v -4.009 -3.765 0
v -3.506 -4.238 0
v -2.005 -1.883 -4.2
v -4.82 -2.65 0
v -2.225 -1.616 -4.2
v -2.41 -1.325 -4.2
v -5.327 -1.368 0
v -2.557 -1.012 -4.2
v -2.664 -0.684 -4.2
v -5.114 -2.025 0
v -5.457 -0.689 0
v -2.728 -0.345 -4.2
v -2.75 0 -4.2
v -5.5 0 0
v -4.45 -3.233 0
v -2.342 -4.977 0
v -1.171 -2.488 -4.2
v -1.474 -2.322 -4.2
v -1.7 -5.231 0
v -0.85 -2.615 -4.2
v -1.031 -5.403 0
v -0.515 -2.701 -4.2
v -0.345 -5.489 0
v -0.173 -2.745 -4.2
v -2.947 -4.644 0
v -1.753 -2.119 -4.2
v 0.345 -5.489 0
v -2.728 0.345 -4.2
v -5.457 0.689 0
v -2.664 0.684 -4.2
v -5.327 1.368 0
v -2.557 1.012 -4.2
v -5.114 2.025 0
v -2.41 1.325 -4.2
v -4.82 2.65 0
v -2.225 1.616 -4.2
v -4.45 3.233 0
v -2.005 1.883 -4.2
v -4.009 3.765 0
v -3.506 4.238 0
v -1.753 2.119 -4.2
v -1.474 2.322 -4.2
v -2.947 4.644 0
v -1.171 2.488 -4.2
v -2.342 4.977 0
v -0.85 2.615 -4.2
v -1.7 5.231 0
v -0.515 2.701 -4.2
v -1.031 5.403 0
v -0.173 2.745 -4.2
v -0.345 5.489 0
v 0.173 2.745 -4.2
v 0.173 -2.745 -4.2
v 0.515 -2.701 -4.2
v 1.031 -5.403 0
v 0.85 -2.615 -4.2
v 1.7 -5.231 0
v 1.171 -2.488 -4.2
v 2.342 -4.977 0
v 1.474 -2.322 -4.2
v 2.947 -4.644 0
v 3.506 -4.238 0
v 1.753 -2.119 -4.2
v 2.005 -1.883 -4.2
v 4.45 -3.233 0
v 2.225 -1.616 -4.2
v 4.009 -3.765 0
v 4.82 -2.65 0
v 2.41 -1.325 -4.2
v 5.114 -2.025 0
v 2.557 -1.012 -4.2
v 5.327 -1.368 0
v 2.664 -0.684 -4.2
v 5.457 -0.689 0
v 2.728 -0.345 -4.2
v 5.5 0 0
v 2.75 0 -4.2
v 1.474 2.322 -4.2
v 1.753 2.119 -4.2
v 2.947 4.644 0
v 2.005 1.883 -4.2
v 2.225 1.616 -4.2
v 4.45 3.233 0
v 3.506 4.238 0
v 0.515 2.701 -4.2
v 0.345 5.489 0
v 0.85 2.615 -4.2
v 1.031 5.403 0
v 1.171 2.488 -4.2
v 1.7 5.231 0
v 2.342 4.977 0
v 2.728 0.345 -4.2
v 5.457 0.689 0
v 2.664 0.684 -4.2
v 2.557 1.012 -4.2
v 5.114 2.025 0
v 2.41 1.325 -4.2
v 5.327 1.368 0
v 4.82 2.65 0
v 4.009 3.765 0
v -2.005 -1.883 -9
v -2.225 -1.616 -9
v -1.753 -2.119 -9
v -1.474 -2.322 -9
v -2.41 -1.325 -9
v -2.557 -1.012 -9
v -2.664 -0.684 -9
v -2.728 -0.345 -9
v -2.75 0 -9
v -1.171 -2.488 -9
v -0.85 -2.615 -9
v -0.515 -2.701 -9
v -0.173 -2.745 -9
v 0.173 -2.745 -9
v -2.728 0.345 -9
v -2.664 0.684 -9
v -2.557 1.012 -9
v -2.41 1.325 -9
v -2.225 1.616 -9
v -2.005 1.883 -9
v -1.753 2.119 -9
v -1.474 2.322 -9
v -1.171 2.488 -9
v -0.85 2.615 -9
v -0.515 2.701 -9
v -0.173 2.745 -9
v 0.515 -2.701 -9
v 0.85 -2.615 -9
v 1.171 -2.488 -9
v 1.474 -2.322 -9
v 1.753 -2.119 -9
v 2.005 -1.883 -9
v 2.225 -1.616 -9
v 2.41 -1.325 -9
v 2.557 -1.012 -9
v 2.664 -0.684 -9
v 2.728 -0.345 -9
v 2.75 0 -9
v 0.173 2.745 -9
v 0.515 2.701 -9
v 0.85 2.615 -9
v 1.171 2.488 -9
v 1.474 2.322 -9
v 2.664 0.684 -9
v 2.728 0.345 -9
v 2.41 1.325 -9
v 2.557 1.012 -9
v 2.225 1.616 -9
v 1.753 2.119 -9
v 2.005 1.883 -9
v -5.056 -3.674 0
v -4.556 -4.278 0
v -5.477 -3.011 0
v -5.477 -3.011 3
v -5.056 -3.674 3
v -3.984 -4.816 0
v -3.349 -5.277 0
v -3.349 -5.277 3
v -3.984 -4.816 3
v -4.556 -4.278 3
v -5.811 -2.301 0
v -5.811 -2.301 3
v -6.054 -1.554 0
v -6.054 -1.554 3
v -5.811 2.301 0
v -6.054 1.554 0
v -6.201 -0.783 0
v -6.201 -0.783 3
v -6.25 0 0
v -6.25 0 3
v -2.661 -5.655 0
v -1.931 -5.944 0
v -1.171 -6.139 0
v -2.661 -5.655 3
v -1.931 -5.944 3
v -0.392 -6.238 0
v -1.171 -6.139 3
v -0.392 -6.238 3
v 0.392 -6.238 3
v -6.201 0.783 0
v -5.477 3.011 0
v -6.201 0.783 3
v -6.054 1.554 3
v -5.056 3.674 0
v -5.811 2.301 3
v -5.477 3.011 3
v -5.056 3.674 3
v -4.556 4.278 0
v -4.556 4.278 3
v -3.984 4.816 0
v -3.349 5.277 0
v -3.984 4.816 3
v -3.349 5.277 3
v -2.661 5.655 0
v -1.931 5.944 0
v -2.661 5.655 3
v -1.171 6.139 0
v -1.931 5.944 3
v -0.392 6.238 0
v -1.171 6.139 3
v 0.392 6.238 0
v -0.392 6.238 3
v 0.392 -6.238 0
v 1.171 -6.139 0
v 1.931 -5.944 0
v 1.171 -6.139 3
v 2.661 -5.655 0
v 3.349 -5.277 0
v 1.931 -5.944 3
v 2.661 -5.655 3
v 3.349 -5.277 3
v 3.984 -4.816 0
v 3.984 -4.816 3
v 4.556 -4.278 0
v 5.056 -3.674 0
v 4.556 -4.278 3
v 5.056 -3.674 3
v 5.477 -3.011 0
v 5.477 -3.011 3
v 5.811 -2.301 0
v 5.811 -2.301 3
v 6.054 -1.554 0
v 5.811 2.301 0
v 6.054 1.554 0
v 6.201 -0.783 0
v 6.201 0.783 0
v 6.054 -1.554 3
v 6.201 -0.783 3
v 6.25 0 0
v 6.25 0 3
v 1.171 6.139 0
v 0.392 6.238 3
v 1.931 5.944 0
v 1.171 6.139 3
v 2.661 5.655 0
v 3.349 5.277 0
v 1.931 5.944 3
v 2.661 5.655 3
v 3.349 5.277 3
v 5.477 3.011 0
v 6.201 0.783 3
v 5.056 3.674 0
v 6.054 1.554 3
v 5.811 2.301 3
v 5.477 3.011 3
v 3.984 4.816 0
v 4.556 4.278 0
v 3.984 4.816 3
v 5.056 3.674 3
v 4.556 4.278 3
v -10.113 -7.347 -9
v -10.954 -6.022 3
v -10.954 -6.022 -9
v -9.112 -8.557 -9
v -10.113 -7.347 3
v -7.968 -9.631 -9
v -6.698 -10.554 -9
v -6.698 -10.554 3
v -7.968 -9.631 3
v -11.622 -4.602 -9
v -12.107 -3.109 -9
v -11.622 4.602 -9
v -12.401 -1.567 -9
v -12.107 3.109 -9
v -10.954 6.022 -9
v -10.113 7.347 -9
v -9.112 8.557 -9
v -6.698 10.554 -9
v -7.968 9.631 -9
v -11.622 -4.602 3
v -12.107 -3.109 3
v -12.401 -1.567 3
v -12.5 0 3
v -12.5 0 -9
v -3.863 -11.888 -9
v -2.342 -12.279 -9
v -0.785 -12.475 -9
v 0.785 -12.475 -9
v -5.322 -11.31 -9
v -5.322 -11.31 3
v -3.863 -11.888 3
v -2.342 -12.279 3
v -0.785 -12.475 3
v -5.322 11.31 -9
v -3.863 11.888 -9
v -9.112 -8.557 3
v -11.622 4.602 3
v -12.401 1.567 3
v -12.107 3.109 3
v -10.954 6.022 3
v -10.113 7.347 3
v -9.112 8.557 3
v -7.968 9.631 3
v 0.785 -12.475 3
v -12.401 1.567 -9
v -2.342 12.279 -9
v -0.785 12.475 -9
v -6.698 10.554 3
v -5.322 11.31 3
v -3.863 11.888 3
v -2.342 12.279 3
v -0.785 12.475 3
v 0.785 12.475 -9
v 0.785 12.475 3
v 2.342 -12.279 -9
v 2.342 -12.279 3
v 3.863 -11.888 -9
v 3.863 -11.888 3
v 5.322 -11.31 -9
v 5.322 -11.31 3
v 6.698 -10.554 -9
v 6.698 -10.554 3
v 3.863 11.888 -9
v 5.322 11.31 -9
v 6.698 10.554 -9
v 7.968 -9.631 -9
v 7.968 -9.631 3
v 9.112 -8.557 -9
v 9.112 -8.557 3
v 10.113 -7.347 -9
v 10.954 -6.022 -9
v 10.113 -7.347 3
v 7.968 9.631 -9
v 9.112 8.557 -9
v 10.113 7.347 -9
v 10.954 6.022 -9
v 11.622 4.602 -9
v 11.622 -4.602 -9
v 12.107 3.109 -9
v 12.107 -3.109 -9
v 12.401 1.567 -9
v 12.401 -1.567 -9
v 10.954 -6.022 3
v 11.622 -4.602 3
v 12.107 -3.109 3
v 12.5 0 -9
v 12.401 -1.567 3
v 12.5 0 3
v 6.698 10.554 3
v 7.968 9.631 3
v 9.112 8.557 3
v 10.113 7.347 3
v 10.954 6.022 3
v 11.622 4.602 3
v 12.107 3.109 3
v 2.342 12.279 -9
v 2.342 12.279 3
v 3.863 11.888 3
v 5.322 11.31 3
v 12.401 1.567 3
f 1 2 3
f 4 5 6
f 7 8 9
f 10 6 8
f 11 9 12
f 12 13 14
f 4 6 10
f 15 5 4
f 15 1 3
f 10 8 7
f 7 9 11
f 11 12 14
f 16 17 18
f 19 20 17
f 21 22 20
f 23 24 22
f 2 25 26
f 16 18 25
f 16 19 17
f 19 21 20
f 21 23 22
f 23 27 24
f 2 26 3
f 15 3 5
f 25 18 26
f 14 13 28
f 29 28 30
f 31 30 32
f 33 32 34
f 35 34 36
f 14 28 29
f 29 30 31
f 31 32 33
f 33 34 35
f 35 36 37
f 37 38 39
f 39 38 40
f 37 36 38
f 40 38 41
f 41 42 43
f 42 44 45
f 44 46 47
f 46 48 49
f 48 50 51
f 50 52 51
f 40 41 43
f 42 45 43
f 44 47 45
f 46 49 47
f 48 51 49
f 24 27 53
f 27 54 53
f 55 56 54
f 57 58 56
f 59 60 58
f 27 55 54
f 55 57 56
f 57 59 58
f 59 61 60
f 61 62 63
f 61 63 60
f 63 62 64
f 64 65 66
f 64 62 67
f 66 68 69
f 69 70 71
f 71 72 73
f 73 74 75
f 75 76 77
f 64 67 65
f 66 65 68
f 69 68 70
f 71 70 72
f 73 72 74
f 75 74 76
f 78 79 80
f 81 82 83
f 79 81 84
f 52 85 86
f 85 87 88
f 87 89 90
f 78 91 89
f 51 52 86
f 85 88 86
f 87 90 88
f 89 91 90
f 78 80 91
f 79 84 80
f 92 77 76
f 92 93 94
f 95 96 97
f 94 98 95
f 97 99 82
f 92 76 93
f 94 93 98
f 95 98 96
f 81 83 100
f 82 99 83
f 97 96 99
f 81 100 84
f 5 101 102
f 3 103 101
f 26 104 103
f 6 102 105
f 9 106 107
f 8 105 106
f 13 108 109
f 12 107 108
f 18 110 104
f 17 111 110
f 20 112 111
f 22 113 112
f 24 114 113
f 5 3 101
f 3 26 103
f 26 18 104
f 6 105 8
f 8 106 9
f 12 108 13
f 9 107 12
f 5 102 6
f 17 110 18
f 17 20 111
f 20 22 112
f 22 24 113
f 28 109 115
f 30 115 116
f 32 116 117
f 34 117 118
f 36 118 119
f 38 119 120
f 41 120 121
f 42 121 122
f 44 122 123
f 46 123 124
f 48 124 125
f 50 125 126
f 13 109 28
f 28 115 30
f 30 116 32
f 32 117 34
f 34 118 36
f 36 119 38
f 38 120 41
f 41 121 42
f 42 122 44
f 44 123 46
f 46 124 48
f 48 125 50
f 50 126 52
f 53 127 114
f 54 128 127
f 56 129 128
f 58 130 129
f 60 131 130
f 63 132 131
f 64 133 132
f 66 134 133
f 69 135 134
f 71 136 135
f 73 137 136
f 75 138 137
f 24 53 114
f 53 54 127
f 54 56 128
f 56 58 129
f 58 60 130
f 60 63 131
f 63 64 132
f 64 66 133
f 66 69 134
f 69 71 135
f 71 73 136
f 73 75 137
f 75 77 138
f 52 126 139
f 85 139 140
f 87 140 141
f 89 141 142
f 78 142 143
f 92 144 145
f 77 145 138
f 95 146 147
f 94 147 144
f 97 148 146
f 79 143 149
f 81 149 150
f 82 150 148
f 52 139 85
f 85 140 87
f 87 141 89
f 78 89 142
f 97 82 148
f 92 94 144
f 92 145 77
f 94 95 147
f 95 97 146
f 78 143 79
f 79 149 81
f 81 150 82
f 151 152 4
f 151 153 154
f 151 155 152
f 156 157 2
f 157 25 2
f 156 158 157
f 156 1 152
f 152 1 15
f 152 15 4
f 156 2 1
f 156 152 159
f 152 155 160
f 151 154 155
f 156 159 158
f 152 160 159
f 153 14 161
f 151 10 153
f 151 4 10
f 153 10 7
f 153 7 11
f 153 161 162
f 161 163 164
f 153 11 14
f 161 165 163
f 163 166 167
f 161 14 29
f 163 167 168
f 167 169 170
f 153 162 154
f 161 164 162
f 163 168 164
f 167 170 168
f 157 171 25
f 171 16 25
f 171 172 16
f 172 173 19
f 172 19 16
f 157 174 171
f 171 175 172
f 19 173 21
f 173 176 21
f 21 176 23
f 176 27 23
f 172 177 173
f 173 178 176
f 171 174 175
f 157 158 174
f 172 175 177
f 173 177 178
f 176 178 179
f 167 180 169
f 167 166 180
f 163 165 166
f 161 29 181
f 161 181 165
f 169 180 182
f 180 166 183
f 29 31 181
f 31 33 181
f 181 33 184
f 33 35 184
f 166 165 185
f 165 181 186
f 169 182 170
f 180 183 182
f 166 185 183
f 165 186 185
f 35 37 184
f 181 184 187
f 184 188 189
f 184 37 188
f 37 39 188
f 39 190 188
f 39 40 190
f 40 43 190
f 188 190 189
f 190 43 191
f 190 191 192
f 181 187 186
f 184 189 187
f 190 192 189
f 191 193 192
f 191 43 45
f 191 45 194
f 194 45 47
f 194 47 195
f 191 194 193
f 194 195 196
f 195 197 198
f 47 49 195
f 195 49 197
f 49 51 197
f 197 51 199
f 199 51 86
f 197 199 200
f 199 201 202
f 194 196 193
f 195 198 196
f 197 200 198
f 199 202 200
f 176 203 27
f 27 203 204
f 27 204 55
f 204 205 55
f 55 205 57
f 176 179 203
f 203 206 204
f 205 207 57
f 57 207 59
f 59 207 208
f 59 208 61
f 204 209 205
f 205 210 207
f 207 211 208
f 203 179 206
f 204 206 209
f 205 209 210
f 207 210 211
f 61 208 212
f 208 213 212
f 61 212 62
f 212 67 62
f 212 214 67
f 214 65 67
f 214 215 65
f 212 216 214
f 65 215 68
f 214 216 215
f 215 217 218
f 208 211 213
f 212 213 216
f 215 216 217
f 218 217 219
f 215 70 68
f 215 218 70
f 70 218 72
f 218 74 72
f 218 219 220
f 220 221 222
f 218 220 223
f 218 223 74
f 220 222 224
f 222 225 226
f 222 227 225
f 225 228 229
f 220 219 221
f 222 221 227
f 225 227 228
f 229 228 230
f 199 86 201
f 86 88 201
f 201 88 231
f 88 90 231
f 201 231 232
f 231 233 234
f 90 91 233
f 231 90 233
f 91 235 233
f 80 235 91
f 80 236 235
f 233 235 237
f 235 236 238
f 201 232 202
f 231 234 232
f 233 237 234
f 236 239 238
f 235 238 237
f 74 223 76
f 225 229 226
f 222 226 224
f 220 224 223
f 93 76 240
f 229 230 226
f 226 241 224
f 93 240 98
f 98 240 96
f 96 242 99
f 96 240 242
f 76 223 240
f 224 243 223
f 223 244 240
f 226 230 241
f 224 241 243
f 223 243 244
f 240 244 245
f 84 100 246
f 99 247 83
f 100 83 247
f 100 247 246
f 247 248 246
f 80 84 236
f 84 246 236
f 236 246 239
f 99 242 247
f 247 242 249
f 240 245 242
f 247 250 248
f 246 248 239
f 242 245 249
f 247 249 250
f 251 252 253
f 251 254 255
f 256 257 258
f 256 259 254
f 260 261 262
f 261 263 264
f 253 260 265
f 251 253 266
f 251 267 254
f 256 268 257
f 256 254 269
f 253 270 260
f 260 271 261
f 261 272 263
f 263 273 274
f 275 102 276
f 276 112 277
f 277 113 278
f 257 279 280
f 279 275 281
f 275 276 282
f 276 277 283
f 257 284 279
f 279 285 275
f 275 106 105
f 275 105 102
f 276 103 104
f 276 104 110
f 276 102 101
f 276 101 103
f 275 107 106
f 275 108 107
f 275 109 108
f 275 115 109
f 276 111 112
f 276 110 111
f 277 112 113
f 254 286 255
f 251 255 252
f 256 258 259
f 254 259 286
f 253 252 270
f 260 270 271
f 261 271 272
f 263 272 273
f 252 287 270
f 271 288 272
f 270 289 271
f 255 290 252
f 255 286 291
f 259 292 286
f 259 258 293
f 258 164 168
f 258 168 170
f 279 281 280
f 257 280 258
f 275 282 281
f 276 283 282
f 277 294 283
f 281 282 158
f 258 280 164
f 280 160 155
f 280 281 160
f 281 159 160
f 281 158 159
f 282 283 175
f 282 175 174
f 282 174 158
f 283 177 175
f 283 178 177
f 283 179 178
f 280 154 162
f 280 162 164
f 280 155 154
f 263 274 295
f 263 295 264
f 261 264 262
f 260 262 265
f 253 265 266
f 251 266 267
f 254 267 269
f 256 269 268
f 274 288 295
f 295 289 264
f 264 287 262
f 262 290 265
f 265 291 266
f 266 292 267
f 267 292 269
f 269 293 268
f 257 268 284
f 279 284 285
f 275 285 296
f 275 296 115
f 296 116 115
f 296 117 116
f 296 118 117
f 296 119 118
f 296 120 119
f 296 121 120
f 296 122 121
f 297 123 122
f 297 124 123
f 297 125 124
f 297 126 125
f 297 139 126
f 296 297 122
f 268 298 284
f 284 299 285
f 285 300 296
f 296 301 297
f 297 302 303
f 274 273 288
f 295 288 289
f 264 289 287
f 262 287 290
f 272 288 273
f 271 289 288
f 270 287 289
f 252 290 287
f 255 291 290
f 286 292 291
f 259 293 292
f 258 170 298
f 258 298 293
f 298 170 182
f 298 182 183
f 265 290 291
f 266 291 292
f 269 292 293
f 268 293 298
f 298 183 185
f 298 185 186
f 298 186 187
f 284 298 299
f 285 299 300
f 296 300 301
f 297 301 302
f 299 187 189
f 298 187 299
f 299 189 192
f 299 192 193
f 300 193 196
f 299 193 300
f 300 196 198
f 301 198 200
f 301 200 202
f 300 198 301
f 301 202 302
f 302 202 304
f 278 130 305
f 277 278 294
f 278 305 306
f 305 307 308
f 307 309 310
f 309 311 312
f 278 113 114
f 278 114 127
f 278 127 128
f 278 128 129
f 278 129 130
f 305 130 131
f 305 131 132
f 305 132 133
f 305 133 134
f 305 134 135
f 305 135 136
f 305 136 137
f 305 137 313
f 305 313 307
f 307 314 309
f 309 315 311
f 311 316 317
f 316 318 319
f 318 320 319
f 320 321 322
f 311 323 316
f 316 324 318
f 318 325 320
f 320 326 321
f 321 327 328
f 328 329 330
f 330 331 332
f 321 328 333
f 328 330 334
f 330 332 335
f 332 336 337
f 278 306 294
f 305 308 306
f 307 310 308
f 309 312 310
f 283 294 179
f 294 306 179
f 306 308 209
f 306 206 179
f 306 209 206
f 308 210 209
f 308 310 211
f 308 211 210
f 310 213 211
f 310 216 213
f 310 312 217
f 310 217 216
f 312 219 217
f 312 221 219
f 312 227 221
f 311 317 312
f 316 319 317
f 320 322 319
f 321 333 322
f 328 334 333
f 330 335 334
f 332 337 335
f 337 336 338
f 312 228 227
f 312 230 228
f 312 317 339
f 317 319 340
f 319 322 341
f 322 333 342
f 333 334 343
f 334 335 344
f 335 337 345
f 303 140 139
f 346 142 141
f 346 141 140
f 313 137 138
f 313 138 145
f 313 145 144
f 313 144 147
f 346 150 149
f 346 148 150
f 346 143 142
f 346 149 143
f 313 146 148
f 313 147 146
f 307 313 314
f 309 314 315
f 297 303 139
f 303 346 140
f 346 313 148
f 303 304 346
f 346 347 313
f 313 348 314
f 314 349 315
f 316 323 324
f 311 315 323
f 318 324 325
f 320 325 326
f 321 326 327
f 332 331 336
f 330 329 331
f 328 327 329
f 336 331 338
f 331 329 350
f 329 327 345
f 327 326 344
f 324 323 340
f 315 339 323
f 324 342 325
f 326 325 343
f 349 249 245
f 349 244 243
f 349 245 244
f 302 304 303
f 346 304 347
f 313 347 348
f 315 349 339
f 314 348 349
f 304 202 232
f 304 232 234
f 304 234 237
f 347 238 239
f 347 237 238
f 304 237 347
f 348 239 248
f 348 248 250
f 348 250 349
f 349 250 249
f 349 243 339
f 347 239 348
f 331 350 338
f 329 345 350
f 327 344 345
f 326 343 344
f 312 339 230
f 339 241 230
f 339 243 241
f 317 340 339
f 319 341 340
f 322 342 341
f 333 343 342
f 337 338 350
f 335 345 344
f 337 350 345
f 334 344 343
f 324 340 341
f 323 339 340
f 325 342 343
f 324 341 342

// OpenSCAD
$fn = 50;

difference() {
	union() {
		translate(v = [0, 0, -9.0]) {
			cylinder(h = 12, r = 12.5);
		}
	}
	union() {
		translate(v = [0, 0, 0]) {
			rotate(a = [0, 0, 0]) {
				difference() {
					union() {
						translate(v = [0, 0, -12.0]) {
							cylinder(h = 12, r = 2.25);
						}
						translate(v = [0, 0, -4.2]) {
							cylinder(h = 4.2, r1 = 2.75, r2 = 5.5);
						}
						translate(v = [0, 0, -12.0]) {
							cylinder(h = 12, r = 2.75);
						}
						translate(v = [0, 0, -12.0]) {
							cylinder(h = 12, r = 2.25);
						}
					}
					union();
				}
			}
		}
		#cylinder(h = 3, r = 6.25);
	}
}
